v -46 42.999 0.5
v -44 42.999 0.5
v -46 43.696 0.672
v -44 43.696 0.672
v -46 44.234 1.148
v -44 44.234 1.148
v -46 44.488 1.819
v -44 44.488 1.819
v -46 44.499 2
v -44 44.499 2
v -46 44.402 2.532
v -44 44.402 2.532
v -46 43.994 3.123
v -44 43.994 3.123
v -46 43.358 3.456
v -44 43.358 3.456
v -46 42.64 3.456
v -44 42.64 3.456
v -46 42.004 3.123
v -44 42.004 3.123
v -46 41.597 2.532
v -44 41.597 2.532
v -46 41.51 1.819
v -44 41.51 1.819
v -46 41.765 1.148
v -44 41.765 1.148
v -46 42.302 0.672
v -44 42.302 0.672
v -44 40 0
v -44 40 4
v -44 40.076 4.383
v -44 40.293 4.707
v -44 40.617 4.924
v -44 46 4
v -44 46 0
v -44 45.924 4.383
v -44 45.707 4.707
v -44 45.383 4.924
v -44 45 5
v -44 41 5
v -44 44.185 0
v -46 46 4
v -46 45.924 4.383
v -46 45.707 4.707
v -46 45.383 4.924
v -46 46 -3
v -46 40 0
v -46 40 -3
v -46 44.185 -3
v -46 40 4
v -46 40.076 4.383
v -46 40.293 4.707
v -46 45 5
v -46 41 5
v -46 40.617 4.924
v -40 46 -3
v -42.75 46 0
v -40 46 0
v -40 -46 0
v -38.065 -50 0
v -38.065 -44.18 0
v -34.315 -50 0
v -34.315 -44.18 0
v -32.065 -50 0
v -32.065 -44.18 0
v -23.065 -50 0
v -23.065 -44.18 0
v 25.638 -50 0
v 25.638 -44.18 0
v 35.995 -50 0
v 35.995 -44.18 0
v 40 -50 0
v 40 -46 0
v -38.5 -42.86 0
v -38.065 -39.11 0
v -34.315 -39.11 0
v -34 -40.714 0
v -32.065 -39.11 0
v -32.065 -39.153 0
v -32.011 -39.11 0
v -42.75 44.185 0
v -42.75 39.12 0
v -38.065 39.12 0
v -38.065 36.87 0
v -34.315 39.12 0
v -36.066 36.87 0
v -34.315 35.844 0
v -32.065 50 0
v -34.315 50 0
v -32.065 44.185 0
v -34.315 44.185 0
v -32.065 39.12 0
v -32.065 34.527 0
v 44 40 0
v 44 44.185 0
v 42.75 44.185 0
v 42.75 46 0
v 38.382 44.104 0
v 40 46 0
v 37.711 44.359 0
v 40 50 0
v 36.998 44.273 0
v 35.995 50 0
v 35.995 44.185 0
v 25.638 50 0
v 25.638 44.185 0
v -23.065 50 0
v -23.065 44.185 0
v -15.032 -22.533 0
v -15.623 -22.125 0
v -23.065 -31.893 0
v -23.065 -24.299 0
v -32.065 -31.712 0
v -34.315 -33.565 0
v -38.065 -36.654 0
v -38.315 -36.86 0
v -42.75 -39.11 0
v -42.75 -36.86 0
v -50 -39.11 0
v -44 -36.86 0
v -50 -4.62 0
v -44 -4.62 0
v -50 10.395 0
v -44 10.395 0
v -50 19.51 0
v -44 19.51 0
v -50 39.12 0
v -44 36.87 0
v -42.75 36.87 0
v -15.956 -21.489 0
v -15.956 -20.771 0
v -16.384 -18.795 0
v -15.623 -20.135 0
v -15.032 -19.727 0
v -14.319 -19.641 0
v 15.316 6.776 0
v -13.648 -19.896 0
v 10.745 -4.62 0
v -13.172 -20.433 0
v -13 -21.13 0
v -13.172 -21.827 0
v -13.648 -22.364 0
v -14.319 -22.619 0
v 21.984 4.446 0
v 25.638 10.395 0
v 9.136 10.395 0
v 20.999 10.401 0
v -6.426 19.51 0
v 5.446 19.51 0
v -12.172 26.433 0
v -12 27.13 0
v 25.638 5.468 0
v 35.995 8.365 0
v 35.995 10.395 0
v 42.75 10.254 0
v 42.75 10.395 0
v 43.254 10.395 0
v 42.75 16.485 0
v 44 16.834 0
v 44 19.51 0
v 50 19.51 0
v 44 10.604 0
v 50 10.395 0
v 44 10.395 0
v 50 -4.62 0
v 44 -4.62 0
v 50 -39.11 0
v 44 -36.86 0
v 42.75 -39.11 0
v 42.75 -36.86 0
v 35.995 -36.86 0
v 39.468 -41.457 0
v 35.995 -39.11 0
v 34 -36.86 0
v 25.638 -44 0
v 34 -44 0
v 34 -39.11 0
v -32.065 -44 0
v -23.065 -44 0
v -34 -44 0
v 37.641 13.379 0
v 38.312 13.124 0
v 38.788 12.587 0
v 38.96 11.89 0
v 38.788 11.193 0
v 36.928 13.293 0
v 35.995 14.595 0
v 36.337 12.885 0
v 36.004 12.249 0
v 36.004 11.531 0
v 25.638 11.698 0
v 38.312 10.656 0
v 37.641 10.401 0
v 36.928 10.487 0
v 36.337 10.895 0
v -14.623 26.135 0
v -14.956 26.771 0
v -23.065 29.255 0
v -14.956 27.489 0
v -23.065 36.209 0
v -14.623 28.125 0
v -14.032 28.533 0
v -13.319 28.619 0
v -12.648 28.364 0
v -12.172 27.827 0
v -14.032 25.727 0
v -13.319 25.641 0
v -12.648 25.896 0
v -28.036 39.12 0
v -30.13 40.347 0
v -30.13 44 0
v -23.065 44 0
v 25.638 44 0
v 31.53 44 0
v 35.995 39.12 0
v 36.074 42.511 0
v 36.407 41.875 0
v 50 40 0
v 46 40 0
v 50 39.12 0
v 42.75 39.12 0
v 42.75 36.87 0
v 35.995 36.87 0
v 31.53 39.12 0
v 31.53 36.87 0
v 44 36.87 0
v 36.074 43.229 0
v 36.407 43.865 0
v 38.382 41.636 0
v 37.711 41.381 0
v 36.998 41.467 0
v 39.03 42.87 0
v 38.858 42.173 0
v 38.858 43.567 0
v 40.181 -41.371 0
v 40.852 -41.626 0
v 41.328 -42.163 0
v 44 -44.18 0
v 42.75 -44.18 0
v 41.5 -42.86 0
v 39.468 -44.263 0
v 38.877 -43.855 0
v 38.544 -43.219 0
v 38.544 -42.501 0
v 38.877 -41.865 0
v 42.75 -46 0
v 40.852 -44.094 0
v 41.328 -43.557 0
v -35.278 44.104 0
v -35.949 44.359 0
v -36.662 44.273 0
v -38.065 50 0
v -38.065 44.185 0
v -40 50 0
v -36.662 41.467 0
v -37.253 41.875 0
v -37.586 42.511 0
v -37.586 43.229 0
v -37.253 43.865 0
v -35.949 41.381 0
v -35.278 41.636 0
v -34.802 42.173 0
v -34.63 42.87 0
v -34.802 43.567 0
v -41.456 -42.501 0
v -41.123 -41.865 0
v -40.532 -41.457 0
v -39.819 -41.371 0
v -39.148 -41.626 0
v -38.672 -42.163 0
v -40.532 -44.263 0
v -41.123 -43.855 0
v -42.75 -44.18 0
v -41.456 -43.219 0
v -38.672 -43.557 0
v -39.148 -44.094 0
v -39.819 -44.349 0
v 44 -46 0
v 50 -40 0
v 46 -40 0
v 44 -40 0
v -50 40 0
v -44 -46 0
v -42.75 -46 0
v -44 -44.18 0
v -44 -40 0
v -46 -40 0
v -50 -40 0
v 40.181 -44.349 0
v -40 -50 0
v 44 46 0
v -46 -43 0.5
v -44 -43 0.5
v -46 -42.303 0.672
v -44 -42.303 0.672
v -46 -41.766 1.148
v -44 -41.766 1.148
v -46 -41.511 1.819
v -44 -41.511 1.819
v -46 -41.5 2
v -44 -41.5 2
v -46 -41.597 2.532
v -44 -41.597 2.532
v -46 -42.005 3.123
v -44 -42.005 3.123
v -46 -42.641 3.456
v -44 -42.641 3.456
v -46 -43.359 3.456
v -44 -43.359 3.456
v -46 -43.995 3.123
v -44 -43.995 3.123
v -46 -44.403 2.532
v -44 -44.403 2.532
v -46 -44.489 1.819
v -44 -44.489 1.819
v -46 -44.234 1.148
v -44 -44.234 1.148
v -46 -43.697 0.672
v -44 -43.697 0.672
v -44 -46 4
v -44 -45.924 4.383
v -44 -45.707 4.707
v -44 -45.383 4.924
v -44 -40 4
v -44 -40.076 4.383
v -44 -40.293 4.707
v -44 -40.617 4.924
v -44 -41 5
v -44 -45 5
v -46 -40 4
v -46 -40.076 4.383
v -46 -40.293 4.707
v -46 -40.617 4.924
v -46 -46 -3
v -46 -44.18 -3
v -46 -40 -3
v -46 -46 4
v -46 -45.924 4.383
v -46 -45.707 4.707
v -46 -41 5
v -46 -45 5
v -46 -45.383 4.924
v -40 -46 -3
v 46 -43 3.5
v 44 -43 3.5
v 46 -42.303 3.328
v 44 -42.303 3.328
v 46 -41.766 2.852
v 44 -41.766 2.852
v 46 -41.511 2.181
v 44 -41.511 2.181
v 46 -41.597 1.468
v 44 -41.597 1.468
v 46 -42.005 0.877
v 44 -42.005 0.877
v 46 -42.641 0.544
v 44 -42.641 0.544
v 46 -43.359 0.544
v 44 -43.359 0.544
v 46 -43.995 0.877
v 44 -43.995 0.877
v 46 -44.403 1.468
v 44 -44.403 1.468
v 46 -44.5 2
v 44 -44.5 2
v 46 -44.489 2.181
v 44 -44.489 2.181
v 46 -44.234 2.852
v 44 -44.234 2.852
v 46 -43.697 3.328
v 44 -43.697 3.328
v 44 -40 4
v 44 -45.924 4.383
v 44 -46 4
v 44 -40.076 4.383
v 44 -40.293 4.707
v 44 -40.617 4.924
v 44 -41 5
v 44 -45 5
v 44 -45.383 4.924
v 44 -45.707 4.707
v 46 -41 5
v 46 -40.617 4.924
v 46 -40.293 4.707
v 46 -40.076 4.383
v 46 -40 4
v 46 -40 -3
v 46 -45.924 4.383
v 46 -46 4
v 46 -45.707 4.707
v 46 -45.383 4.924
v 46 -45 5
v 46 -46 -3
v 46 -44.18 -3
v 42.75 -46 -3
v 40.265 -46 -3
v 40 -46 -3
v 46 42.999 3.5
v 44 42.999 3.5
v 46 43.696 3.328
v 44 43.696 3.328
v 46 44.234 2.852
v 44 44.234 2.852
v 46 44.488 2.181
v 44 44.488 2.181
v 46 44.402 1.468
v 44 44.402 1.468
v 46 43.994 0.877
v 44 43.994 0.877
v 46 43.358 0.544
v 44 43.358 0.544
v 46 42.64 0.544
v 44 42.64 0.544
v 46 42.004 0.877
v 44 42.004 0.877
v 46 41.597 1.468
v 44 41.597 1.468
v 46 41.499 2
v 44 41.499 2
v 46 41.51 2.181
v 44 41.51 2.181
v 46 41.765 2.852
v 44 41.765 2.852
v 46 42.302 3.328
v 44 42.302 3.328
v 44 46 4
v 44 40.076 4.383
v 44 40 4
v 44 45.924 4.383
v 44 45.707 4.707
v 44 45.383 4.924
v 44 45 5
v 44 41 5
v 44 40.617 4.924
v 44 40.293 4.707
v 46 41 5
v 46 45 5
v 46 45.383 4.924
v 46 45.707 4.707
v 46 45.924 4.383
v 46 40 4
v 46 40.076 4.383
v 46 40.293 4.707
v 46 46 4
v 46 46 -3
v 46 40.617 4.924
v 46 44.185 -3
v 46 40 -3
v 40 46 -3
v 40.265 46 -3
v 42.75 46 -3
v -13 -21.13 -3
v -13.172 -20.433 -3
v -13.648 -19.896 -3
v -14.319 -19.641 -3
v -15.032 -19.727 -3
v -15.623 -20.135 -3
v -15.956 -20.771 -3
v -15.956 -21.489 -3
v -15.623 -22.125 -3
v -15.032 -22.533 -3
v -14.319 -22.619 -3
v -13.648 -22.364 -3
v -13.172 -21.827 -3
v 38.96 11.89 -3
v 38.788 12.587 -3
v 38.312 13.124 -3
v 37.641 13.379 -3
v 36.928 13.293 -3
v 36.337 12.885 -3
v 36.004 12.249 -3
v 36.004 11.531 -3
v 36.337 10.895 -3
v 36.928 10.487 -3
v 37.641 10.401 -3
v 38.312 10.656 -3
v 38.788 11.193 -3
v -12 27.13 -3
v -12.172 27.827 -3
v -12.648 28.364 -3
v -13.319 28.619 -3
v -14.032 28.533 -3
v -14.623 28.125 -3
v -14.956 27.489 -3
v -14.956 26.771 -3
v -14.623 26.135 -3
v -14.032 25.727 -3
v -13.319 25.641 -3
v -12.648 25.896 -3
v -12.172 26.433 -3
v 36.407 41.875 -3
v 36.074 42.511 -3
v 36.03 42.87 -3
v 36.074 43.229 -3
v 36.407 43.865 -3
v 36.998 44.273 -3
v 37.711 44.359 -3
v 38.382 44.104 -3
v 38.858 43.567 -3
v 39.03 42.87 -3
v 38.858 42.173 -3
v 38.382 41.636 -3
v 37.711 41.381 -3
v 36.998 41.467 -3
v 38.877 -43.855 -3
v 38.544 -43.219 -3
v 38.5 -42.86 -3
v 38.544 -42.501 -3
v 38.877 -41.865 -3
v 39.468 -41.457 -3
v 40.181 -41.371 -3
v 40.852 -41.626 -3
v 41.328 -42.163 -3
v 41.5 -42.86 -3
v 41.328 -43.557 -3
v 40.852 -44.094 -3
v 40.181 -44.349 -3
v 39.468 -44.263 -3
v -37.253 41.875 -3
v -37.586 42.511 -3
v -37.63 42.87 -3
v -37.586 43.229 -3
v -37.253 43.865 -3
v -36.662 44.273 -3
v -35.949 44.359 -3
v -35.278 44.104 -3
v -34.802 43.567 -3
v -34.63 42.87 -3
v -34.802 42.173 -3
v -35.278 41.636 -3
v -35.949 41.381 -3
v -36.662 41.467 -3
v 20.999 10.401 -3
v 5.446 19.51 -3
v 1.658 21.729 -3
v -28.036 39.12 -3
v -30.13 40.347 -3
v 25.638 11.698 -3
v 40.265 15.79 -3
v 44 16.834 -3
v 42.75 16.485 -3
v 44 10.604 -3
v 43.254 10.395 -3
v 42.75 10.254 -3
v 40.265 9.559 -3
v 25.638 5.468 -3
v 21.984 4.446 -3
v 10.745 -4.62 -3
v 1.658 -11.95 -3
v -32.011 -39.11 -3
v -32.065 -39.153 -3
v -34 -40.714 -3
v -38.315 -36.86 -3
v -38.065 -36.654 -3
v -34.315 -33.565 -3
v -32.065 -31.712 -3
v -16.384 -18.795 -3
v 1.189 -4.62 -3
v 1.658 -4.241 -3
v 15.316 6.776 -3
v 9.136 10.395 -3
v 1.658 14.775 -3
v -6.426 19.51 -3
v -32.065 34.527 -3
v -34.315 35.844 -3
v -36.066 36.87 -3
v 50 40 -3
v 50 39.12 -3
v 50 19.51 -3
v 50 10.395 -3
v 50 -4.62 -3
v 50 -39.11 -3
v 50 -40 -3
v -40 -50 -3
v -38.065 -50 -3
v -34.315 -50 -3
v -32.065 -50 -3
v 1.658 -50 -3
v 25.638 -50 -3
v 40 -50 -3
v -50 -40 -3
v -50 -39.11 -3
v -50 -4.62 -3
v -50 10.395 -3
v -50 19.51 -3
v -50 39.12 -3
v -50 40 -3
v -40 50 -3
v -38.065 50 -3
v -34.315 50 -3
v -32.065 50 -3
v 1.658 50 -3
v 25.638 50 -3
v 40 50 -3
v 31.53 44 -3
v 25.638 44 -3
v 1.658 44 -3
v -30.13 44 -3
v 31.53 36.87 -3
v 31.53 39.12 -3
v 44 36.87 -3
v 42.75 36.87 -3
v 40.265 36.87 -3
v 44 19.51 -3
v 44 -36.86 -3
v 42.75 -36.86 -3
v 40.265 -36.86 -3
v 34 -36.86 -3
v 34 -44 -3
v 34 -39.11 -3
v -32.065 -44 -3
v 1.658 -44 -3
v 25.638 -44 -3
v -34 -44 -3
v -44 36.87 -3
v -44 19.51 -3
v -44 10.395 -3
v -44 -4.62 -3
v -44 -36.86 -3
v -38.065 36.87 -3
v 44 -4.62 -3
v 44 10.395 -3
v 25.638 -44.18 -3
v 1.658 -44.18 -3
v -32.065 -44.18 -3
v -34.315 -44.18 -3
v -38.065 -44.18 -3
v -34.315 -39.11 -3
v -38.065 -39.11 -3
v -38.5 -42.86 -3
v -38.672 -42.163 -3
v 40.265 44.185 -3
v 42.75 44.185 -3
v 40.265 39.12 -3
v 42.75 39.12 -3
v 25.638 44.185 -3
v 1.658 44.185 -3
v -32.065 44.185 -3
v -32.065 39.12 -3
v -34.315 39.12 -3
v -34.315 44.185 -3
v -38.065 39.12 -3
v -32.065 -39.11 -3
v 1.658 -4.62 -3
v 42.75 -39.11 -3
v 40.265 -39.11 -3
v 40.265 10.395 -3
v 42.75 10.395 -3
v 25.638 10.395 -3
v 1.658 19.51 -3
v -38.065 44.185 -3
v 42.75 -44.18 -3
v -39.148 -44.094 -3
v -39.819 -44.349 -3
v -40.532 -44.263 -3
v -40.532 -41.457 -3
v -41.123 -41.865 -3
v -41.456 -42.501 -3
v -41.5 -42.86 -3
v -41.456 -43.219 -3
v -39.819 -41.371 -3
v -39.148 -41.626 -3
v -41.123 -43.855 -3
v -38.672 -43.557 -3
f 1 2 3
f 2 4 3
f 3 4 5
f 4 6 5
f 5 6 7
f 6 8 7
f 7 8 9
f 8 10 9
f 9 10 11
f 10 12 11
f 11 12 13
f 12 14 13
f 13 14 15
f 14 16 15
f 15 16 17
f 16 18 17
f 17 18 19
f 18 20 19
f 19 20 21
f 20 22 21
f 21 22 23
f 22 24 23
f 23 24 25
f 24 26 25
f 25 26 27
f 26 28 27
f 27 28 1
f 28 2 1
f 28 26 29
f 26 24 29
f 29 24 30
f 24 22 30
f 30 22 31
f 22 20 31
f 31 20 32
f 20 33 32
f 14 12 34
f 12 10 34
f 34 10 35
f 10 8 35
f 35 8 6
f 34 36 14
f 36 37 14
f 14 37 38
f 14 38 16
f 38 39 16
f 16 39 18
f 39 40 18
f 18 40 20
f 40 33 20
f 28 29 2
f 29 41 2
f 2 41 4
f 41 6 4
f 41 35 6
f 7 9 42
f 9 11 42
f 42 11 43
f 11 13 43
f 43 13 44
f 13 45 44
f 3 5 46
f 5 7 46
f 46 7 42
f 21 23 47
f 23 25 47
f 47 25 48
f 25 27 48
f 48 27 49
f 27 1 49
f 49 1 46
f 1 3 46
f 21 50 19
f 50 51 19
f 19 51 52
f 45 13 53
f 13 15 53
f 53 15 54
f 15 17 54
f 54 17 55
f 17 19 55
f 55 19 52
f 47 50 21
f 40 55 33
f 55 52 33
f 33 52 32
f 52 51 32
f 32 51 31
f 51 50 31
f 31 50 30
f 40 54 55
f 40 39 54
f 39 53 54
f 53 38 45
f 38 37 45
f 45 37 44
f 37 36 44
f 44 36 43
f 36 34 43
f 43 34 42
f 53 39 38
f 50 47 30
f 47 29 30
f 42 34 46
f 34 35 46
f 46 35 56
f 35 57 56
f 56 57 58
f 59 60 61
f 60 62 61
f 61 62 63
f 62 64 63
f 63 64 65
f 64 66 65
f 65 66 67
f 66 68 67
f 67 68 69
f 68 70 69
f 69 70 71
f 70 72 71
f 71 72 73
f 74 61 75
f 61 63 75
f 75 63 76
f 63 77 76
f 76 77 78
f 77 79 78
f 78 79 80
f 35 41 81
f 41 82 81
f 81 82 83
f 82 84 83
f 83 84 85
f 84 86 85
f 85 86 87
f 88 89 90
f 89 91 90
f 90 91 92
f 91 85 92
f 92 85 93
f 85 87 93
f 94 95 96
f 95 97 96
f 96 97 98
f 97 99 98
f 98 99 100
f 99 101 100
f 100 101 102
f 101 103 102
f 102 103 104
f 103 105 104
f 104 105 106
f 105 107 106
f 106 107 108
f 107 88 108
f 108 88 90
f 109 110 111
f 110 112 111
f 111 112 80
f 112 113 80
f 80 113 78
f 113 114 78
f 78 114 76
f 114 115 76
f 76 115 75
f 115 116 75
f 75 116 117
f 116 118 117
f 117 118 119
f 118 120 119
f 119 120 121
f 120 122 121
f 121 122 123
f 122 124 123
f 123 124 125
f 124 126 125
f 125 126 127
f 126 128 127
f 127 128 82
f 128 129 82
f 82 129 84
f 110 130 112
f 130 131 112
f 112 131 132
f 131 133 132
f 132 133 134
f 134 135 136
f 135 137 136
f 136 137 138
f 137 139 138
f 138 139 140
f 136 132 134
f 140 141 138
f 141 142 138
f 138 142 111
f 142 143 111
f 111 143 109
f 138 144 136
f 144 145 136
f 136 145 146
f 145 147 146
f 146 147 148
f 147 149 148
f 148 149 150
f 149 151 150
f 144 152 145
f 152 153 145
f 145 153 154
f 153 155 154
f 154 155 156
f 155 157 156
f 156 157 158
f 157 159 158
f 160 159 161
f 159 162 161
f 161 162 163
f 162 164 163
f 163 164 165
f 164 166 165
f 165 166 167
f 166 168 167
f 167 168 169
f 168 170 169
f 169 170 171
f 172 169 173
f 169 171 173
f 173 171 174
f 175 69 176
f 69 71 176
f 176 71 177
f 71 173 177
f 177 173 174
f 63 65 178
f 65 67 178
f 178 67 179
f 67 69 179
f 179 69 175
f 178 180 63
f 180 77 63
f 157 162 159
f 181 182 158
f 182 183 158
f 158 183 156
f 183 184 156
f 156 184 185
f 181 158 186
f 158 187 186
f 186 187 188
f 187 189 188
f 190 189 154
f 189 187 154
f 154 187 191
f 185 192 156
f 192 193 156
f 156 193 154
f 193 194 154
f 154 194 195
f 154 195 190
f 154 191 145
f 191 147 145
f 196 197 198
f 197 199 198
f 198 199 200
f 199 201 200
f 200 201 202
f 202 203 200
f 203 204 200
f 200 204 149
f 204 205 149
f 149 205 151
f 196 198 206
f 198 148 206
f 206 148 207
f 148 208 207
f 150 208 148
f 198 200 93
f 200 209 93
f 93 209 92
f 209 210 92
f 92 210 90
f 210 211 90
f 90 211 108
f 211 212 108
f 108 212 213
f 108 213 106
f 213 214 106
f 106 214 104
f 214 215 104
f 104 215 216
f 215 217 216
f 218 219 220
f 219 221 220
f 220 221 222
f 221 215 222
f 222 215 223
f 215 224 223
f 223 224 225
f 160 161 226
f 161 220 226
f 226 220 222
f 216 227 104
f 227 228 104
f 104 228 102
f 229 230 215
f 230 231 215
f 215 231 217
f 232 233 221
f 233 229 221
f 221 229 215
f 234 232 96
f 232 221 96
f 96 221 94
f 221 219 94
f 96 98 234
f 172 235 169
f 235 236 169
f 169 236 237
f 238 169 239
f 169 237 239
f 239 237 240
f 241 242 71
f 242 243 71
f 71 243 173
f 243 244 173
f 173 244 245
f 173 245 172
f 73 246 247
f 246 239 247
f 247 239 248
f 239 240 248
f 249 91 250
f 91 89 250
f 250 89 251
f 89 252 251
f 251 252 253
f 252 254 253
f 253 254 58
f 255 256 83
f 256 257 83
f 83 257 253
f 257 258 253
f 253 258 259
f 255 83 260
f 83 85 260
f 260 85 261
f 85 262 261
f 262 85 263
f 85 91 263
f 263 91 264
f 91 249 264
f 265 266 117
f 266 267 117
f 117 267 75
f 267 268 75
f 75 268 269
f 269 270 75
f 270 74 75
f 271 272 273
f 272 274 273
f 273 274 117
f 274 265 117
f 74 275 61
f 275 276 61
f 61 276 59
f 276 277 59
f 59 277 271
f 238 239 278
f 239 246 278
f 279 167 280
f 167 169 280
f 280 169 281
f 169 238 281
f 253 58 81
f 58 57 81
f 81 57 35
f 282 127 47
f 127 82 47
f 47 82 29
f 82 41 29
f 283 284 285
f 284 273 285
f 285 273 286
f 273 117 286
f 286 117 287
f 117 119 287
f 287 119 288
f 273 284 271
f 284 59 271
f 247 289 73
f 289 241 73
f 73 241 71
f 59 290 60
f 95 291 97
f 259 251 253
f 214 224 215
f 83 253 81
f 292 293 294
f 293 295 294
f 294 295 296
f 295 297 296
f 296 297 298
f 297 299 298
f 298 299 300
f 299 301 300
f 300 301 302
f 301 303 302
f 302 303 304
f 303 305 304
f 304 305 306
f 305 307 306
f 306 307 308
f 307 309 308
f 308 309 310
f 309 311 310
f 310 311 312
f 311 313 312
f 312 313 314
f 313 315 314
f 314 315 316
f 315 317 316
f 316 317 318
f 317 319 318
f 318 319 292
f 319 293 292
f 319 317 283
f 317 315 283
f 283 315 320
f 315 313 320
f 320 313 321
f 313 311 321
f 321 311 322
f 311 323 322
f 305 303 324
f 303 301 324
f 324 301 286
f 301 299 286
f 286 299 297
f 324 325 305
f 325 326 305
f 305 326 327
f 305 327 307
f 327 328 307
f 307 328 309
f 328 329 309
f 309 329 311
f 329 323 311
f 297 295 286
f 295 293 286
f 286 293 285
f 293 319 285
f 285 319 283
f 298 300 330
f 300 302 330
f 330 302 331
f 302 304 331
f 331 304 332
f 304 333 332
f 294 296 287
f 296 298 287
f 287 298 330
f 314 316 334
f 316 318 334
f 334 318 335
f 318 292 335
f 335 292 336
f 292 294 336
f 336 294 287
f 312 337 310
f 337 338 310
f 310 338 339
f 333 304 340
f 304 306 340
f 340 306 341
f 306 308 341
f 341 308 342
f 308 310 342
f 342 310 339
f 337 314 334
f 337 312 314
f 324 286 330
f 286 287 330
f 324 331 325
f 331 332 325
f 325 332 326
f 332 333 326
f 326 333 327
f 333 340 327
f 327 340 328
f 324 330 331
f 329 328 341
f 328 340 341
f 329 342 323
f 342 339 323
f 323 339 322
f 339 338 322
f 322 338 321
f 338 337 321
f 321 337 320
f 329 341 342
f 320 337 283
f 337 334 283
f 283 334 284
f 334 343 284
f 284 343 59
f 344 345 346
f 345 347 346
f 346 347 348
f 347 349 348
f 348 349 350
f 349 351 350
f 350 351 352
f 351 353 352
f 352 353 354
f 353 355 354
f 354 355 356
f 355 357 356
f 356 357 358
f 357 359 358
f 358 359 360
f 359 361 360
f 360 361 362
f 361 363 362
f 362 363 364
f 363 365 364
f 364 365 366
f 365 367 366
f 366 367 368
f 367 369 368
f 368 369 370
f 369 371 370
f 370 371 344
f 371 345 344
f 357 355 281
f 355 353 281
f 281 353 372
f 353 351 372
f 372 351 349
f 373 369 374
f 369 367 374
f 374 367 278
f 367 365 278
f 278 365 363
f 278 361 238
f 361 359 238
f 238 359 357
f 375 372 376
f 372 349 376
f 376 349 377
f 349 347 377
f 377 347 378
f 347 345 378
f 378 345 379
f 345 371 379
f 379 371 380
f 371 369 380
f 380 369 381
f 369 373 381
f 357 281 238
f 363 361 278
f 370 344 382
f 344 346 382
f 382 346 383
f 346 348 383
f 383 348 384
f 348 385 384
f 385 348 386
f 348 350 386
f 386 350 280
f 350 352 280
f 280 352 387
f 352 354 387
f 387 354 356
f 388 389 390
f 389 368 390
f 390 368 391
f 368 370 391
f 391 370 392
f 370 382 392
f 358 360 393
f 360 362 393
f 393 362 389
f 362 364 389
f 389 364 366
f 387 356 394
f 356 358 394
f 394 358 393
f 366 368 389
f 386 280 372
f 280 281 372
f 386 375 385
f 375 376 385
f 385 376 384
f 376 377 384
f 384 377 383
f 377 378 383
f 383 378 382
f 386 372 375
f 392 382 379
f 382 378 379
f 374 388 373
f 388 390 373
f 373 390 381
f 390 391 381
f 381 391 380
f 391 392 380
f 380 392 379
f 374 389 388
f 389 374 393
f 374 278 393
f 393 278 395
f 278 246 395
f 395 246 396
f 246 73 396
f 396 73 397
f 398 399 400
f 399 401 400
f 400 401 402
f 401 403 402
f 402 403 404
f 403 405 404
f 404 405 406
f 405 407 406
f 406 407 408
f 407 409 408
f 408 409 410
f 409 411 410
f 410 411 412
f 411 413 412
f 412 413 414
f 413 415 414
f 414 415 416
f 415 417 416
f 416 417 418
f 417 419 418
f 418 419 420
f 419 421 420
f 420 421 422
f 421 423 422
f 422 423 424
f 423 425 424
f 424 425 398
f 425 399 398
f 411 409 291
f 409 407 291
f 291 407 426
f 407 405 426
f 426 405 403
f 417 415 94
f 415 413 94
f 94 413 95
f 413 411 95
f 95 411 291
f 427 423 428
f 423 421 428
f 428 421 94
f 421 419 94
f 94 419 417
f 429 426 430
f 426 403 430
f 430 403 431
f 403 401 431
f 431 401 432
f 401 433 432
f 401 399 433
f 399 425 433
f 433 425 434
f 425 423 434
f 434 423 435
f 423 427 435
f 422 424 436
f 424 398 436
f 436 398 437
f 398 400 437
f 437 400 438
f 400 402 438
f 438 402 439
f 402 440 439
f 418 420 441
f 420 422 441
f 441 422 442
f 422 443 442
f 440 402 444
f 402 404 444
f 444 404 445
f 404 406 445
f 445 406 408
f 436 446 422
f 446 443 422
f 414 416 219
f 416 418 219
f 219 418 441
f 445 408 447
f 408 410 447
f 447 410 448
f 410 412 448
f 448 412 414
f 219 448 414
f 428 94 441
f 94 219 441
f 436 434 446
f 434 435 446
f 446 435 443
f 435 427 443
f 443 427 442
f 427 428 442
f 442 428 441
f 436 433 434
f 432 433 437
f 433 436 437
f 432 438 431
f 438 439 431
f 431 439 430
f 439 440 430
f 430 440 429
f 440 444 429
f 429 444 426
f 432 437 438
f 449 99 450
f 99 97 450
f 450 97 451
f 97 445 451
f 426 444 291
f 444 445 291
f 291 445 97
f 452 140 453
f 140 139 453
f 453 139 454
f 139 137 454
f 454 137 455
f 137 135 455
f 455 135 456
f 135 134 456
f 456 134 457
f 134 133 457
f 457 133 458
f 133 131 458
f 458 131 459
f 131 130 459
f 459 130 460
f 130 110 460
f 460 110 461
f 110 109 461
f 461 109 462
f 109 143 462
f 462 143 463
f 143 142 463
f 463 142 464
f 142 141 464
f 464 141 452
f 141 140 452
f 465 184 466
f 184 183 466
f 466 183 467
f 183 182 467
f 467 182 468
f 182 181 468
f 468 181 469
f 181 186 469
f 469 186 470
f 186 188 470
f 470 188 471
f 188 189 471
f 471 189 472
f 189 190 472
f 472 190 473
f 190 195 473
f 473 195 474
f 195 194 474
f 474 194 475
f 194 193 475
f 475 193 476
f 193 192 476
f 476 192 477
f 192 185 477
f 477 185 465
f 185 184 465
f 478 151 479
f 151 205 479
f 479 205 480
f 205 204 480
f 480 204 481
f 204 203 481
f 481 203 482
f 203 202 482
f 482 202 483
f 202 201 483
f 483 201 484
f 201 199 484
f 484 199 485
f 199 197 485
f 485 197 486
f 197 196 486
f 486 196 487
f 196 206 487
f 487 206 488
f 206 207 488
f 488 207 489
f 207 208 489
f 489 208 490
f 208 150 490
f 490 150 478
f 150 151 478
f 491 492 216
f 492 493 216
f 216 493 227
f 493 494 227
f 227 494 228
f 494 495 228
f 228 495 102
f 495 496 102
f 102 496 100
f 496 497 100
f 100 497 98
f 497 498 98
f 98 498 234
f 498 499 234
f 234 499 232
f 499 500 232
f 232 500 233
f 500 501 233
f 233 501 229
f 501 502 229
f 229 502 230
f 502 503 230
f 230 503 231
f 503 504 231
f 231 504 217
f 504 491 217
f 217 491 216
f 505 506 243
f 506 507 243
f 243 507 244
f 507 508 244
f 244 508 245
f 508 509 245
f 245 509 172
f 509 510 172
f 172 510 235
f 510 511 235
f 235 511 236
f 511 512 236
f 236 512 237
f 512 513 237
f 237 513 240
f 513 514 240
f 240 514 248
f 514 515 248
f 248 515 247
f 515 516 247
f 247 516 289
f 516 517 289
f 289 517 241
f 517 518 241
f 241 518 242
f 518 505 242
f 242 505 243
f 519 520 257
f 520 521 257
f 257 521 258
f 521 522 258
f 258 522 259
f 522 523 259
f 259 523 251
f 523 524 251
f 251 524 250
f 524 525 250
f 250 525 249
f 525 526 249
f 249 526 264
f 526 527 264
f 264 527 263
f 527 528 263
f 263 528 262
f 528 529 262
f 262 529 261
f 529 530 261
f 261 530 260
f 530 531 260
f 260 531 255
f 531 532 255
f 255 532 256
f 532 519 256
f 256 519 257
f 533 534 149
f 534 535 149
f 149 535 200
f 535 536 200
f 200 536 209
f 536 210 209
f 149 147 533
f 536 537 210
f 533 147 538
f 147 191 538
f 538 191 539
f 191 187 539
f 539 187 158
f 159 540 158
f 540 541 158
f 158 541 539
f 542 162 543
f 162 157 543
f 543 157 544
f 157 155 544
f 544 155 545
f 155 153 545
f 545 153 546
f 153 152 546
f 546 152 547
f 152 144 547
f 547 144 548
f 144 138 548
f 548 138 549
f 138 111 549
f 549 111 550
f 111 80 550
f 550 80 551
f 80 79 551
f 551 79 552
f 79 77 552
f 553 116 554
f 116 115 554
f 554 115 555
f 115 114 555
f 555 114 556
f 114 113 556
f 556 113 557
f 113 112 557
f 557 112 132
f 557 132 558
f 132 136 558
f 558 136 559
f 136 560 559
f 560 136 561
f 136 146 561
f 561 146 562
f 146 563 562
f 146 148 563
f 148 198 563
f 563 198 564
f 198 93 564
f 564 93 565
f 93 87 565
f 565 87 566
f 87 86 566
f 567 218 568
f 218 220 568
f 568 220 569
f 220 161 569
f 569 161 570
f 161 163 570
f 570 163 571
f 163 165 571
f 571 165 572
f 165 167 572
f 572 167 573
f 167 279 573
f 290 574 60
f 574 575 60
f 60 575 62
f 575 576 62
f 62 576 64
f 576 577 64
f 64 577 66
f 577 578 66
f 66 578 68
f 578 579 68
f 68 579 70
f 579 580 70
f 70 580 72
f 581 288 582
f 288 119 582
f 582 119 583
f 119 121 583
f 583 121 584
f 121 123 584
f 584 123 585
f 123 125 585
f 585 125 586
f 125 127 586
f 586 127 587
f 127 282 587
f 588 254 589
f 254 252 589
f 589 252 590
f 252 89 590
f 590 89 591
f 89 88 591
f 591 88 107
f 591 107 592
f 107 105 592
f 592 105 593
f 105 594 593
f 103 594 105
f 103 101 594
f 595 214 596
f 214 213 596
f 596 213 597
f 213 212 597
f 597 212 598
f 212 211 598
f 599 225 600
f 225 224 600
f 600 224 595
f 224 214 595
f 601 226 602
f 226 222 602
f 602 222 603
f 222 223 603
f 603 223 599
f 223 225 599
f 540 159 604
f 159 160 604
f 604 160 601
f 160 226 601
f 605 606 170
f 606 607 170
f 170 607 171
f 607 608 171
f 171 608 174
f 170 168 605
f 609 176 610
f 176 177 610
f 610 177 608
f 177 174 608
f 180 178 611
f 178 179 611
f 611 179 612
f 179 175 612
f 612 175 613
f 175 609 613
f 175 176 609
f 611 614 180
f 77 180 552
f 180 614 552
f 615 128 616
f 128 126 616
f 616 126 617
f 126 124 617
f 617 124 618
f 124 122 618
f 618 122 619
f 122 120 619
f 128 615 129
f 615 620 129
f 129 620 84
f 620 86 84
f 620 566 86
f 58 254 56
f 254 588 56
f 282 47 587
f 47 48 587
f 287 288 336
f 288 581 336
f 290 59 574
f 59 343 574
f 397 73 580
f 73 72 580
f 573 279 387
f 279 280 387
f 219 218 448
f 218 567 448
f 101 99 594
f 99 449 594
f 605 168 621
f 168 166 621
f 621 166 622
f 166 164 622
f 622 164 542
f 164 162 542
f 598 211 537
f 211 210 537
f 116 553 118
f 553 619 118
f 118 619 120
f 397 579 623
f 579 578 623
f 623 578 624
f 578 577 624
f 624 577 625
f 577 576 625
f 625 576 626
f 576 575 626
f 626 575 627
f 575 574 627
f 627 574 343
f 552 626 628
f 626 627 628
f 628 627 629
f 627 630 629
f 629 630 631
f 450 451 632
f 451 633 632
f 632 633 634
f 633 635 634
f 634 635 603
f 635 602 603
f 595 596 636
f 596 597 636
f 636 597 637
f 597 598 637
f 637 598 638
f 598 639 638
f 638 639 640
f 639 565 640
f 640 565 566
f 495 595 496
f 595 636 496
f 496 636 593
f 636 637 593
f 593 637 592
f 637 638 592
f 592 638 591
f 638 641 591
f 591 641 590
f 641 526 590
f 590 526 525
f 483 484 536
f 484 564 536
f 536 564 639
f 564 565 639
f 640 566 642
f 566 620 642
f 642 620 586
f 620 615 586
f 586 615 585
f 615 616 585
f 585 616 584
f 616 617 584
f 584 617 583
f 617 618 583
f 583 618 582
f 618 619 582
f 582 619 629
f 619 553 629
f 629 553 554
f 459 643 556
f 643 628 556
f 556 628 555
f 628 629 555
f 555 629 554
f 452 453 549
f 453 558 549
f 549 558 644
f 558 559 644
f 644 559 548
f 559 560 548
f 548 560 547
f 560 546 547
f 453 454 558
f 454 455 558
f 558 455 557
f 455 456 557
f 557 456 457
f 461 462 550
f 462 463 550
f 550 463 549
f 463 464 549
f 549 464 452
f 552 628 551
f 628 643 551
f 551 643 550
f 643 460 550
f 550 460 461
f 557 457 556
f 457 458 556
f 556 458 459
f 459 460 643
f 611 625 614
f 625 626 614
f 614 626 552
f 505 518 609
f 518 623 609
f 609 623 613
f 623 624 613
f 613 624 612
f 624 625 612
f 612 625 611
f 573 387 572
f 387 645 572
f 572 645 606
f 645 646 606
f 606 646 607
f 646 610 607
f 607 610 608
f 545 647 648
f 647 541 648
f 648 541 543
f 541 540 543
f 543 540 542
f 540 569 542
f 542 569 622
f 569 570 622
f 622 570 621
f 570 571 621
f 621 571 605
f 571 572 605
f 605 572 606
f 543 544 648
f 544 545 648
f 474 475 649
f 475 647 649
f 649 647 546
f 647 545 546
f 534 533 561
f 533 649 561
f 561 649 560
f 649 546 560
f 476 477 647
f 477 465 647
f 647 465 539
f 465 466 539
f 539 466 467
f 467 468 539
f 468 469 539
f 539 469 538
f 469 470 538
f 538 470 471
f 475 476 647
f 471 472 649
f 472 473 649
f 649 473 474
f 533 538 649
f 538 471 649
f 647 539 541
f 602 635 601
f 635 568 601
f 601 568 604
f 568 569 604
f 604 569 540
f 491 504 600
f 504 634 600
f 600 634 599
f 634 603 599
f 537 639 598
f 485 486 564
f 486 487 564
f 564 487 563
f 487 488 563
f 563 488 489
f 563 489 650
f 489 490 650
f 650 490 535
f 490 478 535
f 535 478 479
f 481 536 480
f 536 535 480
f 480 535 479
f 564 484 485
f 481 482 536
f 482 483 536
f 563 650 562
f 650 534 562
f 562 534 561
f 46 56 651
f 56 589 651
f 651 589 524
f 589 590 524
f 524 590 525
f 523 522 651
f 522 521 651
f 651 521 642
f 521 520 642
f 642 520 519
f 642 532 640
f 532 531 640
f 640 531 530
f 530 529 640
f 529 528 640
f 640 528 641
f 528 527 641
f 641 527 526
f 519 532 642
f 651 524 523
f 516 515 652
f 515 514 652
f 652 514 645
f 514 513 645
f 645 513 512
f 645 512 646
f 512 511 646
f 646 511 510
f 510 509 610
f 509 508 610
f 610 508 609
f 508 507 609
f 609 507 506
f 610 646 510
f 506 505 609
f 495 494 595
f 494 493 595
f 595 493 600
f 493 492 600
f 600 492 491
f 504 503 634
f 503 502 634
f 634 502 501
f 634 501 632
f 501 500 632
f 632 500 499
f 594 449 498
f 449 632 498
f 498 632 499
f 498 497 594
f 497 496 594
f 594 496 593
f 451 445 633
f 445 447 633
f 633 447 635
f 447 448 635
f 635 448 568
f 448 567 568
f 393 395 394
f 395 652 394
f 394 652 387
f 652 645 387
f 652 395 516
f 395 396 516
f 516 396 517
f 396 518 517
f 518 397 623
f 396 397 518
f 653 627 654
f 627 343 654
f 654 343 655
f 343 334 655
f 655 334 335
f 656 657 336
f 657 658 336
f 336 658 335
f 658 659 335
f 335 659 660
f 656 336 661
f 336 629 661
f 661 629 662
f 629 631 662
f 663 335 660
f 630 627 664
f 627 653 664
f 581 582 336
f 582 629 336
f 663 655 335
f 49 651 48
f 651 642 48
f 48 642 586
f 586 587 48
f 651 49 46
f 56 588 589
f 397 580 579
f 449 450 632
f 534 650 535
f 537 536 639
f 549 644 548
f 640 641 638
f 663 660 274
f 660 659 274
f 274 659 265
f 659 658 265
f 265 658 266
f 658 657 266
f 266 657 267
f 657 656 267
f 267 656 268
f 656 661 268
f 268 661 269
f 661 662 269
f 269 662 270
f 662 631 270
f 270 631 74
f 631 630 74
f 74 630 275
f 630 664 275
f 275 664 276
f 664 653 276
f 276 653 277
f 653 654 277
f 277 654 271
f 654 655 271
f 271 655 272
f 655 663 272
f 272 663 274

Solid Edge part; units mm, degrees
sketch "Sketch1" plane through (0, 0, 0) normal (0, 0, 1) x (1, 0, 0)
  line L0 (-40, -50) -> (40, -50)
  line L1 (40, -50) -> (50, -50)
  line L2 (50, -50) -> (50, -40)
  line L3 (50, -40) -> (50, 40)
  line L4 (50, 50) -> (50, 40)
  line L5 (40, 50) -> (50, 50)
  line L6 (40, 50) -> (-40, 50)
  line L7 (-50, 50) -> (-40, 50)
  line L8 (-50, 40) -> (-50, 50)
  line L9 (-50, 40) -> (-50, -40)
  line L10 (-50, -40) -> (-50, -50)
  line L11 (-50, -50) -> (-40, -50)
extrude "Protrusion1" add sketch "Sketch1" against normal blind 5
sketch "Sketch2" plane through (0, 0, 0) normal (0, 0, 1) x (1, 0, 0)
  line L0 (50, 50) -> (40, 50)
  line L1 (40, 46) -> (40, 50)
  line L2 (40, 46) -> (46, 46)
  line L3 (46, 46) -> (46, 40)
  line L4 (46, 40) -> (50, 40)
  line L5 (50, 40) -> (50, 50)
  line L6 (50, -40) -> (50, -50)
  line L7 (50, -50) -> (40, -50)
  line L8 (40, -46) -> (40, -50)
  line L9 (46, -46) -> (40, -46)
  line L10 (46, -40) -> (46, -46)
  line L11 (46, -40) -> (50, -40)
  line L12 (-50, -50) -> (-40, -50)
  line L13 (-40, -46) -> (-40, -50)
  line L14 (-46, -46) -> (-40, -46)
  line L15 (-46, -40) -> (-46, -46)
  line L16 (-50, -40) -> (-46, -40)
  line L17 (-50, -40) -> (-50, -50)
  line L18 (-46, 40) -> (-46, 46)
  line L19 (-46, 46) -> (-40, 46)
  line L20 (-40, 46) -> (-40, 50)
  line L21 (-40, 50) -> (-50, 50)
  line L22 (-50, 50) -> (-50, 40)
  line L23 (-50, 40) -> (-46, 40)
  dimension "D1" = 40
  dimension "D2" = 40
  dimension "D3" = 50
  dimension "D4" = 50
  dimension "D5" = 50
  dimension "D6" = 50
  dimension "D7" = 40
  dimension "D8" = 46
  dimension "D9" = 46
  dimension "D10" = 50
  dimension "D11" = 50
  dimension "D12" = 40
  dimension "D13" = 50
  dimension "D14" = 50
  dimension "D15" = 50
  dimension "D16" = 40
extrude "ExtrudedCutout_1" cut sketch "Sketch2" against normal blind 11.3526
sketch "Sketch3" plane through (0, 0, 0) normal (0, 0, 1) x (1, 0, 0)
  circle A0 centre (-40, -42.86) radius 1.5
  circle A1 centre (-36.13, 42.87) radius 1.5
  circle A2 centre (40, -42.86) radius 1.5
  circle A3 centre (37.53, 42.87) radius 1.5
extrude "Cutout1" cut sketch "Sketch3" against normal blind 5
sketch "Sketch4" plane through (0, 0, 0) normal (0, 0, 1) x (0, 1, 0)
  line L0 (36.87, 44) -> (-36.86, 44)
  line L1 (-36.86, 44) -> (-36.86, 34)
  line L2 (-36.86, 34) -> (-44, 34)
  line L3 (-44, 34) -> (-44, -34)
  line L4 (-44, -34) -> (-36.86, -34)
  line L5 (-36.86, -34) -> (-36.86, -44)
  line L6 (-36.86, -44) -> (36.87, -44)
  line L7 (36.87, -44) -> (36.87, -31.53)
  line L8 (36.87, -31.53) -> (44, -31.53)
  line L9 (44, -31.53) -> (44, 30.13)
  line L10 (44, 30.13) -> (36.87, 30.13)
  line L11 (36.87, 30.13) -> (36.87, 44)
extrude "Cutout2" cut sketch "Sketch4" against normal blind 5
sketch "Sketch5" plane through (0, 0, 0) normal (0, 0, 1) x (1, 0, 0)
  line L0 (-46, 40) -> (-44, 40)
  line L1 (-44, 40) -> (-44, 46)
  line L2 (-44, 46) -> (-46, 46)
  line L3 (-46, 40) -> (-46, 46)
  line L4 (46, 46) -> (44, 46)
  line L5 (44, 46) -> (44, 40)
  line L6 (44, 40) -> (46, 40)
  line L7 (46, 40) -> (46, 46)
  line L8 (-46, -40) -> (-44, -40)
  line L9 (-44, -40) -> (-44, -46)
  line L10 (-44, -46) -> (-46, -46)
  line L11 (-46, -46) -> (-46, -40)
  line L12 (46, -46) -> (44, -46)
  line L13 (44, -46) -> (44, -40)
  line L14 (44, -40) -> (46, -40)
  line L15 (46, -40) -> (46, -46)
extrude "ExtrudedProtrusion_3" add sketch "Sketch5" along normal blind 5
sketch "Sketch6" plane through (-44, -43, 3) normal (1, 0, 0) x (0, 1, 0)
  circle A0 centre (0, -1) radius 1.5
  circle A1 centre (85.9991, -1) radius 1.5
extrude "ExtrudedCutout_14" cut sketch "Sketch6" against normal blind 2
sketch "Sketch7" plane through (44, 43, 2.5) normal (-1, 0, 0) x (0, -1, 0)
  circle A0 centre (0.0009, -0.5) radius 1.5
  circle A1 centre (86, -0.5) radius 1.5
extrude "ExtrudedCutout_15" cut sketch "Sketch7" against normal blind 2
fillet "Round_2" radius 1 8 edges at (45, 40, 5) (45, 46, 5) (-45, 40, 5) (-45, 46, 5) (-45, -46, 5) (-45, -40, 5) (45, -46, 5) (45, -40, 5)
sketch "Sketch8" plane through (0, 0, -5) normal (0, 0, -1) x (0, -1, 0)
  line L0 (-50, -50) -> (50, -50)
  line L1 (50, -50) -> (50, 50)
  line L2 (50, 50) -> (-50, 50)
  line L3 (-50, 50) -> (-50, -50)
  dimension "D1" = 50
  dimension "D2" = 50
extrude "ExtrudedCutout_16" cut sketch "Sketch8" against normal blind 2
sketch "Sketch9" plane through (0, 0, 0) normal (0, 0, 1) x (1, 0, 0)
  line L0 (-36.0661, 36.87) -> (-30.13, 36.87)
  line L1 (-15.0162, 24.5413) -> (-36.0661, 36.87)
  line L2 (-15.0162, 24.5413) -> (15.3161, 6.7761)
  line L3 (-16.3836, -18.795) -> (15.3161, 6.7761)
  line L4 (-16.3836, -18.795) -> (-38.3148, -36.86)
  line L5 (-34, -36.86) -> (-38.3148, -36.86)
  line L6 (-34, -40.7144) -> (-34, -36.86)
  line L7 (-12.6164, -23.465) -> (-34, -40.7144)
  line L8 (-12.6164, -23.465) -> (21.9842, 4.4462)
  line L9 (21.9842, 4.4462) -> (38.2681, 9.0009)
  line L10 (38.2681, 9.0009) -> (44, 10.6041)
  line L11 (44, 10.6041) -> (44, 16.8344)
  line L12 (36.6519, 14.7791) -> (44, 16.8344)
  line L13 (36.6519, 14.7791) -> (20.9991, 10.4009)
  line L14 (-11.9838, 29.7187) -> (20.9991, 10.4009)
  line L15 (-11.9838, 29.7187) -> (-30.13, 40.3467)
  line L16 (-30.13, 40.3467) -> (-30.13, 36.87)
extrude "ExtrudedProtrusion_4" add sketch "Sketch9" against normal blind 3
sketch "Sketch10" plane through (0, 0, 0) normal (0, 0, 1) x (1, 0, 0)
  circle A0 centre (-13.5, 27.13) radius 1.5
  circle A1 centre (37.46, 11.89) radius 1.5
  circle A2 centre (-14.5, -21.13) radius 1.5
extrude "Cutout3" cut sketch "Sketch10" against normal blind 3
